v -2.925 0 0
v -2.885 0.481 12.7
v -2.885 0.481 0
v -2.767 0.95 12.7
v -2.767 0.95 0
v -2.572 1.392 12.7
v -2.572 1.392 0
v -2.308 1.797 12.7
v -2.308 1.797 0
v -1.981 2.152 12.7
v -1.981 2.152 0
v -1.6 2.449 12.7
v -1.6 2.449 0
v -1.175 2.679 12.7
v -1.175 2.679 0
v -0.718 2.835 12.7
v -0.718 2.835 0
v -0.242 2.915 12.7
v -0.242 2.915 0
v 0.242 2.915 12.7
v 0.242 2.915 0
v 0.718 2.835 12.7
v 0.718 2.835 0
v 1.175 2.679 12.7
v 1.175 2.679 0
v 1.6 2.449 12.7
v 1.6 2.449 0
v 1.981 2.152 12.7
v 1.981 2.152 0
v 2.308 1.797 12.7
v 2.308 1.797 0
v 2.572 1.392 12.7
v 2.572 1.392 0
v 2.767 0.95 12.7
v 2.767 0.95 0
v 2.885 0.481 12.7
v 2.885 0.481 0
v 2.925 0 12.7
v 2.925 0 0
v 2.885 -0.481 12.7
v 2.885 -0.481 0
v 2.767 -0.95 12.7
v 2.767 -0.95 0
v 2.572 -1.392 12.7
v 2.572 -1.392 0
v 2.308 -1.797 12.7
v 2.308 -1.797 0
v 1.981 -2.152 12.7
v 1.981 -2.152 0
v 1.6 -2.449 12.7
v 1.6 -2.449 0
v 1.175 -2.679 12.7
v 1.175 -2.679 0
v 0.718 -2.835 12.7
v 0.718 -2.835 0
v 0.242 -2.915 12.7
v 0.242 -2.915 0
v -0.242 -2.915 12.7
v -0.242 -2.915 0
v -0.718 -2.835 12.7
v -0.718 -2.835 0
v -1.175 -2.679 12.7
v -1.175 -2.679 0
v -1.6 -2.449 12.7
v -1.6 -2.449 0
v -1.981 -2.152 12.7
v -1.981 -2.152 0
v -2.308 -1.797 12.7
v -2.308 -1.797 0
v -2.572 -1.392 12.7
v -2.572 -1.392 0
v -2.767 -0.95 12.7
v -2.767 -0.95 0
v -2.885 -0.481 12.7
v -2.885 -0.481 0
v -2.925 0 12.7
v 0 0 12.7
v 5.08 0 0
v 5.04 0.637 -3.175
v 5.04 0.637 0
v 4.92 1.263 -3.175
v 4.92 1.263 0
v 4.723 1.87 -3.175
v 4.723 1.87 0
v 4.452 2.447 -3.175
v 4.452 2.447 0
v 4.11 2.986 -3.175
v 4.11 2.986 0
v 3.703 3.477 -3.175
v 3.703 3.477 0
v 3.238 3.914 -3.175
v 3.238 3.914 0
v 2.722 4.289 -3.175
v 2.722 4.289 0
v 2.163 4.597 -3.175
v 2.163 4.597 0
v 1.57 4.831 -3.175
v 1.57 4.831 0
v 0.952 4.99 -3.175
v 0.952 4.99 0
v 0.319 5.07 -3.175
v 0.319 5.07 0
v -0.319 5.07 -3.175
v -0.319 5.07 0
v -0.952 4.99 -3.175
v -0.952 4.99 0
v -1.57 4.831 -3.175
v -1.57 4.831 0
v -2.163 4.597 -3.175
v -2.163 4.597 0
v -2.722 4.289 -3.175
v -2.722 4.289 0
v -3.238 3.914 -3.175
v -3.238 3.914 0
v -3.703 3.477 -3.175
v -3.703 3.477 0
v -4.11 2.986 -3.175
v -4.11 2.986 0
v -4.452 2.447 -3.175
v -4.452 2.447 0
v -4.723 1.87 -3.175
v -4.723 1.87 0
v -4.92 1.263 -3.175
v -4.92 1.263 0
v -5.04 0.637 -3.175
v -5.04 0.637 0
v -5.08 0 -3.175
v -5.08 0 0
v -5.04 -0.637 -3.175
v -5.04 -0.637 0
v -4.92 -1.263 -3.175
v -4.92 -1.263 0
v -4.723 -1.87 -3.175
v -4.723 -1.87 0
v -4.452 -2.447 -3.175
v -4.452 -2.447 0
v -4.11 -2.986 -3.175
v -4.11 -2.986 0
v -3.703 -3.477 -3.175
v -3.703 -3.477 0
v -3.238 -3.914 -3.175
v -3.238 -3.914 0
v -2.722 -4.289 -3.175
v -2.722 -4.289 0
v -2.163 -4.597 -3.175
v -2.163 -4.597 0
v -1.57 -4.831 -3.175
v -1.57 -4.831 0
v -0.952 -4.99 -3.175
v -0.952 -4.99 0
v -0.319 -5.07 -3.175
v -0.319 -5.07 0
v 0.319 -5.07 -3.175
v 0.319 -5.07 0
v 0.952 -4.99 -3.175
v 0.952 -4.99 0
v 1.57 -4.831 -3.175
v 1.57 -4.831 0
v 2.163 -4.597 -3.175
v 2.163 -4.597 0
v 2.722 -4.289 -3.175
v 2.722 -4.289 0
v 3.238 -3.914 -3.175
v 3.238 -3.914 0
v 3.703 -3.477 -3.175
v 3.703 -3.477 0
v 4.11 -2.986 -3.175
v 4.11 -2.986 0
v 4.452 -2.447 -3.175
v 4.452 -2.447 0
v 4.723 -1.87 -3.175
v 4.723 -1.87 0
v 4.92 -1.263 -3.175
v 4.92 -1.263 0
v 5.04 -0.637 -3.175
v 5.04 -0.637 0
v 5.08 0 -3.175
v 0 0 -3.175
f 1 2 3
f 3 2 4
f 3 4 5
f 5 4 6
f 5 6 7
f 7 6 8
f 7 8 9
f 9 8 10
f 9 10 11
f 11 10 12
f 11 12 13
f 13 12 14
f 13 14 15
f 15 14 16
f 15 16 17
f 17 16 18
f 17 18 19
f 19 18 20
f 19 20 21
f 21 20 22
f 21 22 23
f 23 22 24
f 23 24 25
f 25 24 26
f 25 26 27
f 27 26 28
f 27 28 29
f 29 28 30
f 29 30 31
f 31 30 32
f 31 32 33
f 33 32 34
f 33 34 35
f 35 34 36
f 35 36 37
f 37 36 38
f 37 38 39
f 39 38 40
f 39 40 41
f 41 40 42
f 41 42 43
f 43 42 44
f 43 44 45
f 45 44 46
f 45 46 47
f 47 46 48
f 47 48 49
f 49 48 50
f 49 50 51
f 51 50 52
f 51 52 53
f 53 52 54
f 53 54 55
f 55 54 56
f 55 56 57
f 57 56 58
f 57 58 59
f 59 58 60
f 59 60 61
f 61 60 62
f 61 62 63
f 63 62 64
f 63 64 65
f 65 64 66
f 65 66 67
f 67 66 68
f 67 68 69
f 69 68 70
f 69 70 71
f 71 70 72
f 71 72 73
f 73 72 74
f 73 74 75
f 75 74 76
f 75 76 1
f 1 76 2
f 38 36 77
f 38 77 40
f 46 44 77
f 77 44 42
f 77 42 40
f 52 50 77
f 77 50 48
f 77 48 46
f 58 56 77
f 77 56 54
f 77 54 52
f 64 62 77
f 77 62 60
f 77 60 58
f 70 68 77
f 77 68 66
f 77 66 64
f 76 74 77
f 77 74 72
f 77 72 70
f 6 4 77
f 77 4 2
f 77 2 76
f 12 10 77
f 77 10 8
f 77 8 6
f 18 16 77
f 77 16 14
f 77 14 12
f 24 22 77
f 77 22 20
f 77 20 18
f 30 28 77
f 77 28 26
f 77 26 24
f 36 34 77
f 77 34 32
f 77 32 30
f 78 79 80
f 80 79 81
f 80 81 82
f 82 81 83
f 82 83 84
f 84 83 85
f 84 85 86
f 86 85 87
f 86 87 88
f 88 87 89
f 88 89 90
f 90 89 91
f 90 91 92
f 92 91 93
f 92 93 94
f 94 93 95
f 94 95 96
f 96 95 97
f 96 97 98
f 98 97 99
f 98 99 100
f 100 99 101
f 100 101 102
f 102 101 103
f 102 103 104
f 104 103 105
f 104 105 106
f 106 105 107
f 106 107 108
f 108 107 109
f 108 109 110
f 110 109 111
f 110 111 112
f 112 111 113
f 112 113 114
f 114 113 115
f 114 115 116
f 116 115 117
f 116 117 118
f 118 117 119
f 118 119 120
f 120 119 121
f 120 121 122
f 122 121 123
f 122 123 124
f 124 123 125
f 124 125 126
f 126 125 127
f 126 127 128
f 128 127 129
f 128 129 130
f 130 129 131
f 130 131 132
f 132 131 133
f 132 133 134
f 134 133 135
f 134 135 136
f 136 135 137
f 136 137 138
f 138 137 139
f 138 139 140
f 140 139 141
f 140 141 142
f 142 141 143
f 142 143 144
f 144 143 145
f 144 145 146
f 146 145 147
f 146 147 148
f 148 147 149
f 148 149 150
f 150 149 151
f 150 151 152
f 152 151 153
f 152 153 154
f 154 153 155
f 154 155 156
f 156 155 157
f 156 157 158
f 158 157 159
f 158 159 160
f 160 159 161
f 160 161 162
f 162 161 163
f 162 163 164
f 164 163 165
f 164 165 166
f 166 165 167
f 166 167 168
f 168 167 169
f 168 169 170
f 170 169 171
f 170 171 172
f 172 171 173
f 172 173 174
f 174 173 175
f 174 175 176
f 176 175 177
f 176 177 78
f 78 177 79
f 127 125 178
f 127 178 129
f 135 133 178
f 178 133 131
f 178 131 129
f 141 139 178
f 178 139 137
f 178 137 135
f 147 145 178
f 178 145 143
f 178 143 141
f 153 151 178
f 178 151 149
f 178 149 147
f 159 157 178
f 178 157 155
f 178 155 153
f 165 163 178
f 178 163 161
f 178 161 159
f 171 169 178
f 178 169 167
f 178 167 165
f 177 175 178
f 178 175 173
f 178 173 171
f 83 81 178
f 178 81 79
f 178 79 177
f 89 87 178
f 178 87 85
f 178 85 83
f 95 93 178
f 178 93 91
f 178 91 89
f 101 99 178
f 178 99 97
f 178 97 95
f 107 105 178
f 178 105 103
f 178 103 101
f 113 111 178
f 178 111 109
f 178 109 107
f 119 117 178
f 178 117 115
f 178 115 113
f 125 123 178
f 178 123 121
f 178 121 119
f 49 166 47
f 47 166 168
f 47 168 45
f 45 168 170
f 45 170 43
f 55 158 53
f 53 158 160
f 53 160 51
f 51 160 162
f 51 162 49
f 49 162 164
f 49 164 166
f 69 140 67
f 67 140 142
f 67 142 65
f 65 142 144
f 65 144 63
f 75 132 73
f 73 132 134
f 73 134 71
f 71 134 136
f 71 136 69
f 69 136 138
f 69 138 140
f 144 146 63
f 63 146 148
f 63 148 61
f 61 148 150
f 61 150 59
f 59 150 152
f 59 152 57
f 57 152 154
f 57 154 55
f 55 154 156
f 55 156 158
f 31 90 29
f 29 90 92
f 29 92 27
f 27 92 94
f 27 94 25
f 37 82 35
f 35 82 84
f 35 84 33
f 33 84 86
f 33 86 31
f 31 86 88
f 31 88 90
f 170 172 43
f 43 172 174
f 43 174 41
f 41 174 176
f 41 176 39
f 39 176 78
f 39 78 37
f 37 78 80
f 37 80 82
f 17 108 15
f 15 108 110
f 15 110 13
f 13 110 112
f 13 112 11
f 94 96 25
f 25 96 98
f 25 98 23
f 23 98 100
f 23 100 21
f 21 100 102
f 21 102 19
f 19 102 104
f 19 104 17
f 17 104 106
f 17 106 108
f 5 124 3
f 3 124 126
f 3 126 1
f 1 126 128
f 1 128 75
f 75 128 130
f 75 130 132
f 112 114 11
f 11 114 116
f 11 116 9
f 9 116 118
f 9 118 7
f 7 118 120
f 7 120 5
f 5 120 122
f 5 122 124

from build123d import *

# Parameters (mm, degrees)
SKETCH1_R           = 3.175
BOSS_EXTRUDE1_DEPTH = 12.7
SKETCH2_R           = 5.08
BOSS_EXTRUDE2_DEPTH = 3.175
MOVE_FACE1_BY       = 0.250000008


with BuildPart() as part:
    # Sketch1 → Boss-Extrude1 (new body)
    with BuildSketch(Plane.XY):
        Circle(SKETCH1_R)
    extrude(amount=BOSS_EXTRUDE1_DEPTH)

    # Sketch2 → Boss-Extrude2 (add)
    with BuildSketch(Plane(origin=(0, 0, 0), x_dir=(-1, 0, 0), z_dir=(0, 0, -1))):
        Circle(SKETCH2_R)
    extrude(amount=BOSS_EXTRUDE2_DEPTH)

    # Move Face1: a curved face moved inward by 0.25
    add(Solid.thicken(part.faces().sort_by_distance((-3.175, 0, 6.35))[0], -MOVE_FACE1_BY), mode=Mode.SUBTRACT)


solid = part.part
